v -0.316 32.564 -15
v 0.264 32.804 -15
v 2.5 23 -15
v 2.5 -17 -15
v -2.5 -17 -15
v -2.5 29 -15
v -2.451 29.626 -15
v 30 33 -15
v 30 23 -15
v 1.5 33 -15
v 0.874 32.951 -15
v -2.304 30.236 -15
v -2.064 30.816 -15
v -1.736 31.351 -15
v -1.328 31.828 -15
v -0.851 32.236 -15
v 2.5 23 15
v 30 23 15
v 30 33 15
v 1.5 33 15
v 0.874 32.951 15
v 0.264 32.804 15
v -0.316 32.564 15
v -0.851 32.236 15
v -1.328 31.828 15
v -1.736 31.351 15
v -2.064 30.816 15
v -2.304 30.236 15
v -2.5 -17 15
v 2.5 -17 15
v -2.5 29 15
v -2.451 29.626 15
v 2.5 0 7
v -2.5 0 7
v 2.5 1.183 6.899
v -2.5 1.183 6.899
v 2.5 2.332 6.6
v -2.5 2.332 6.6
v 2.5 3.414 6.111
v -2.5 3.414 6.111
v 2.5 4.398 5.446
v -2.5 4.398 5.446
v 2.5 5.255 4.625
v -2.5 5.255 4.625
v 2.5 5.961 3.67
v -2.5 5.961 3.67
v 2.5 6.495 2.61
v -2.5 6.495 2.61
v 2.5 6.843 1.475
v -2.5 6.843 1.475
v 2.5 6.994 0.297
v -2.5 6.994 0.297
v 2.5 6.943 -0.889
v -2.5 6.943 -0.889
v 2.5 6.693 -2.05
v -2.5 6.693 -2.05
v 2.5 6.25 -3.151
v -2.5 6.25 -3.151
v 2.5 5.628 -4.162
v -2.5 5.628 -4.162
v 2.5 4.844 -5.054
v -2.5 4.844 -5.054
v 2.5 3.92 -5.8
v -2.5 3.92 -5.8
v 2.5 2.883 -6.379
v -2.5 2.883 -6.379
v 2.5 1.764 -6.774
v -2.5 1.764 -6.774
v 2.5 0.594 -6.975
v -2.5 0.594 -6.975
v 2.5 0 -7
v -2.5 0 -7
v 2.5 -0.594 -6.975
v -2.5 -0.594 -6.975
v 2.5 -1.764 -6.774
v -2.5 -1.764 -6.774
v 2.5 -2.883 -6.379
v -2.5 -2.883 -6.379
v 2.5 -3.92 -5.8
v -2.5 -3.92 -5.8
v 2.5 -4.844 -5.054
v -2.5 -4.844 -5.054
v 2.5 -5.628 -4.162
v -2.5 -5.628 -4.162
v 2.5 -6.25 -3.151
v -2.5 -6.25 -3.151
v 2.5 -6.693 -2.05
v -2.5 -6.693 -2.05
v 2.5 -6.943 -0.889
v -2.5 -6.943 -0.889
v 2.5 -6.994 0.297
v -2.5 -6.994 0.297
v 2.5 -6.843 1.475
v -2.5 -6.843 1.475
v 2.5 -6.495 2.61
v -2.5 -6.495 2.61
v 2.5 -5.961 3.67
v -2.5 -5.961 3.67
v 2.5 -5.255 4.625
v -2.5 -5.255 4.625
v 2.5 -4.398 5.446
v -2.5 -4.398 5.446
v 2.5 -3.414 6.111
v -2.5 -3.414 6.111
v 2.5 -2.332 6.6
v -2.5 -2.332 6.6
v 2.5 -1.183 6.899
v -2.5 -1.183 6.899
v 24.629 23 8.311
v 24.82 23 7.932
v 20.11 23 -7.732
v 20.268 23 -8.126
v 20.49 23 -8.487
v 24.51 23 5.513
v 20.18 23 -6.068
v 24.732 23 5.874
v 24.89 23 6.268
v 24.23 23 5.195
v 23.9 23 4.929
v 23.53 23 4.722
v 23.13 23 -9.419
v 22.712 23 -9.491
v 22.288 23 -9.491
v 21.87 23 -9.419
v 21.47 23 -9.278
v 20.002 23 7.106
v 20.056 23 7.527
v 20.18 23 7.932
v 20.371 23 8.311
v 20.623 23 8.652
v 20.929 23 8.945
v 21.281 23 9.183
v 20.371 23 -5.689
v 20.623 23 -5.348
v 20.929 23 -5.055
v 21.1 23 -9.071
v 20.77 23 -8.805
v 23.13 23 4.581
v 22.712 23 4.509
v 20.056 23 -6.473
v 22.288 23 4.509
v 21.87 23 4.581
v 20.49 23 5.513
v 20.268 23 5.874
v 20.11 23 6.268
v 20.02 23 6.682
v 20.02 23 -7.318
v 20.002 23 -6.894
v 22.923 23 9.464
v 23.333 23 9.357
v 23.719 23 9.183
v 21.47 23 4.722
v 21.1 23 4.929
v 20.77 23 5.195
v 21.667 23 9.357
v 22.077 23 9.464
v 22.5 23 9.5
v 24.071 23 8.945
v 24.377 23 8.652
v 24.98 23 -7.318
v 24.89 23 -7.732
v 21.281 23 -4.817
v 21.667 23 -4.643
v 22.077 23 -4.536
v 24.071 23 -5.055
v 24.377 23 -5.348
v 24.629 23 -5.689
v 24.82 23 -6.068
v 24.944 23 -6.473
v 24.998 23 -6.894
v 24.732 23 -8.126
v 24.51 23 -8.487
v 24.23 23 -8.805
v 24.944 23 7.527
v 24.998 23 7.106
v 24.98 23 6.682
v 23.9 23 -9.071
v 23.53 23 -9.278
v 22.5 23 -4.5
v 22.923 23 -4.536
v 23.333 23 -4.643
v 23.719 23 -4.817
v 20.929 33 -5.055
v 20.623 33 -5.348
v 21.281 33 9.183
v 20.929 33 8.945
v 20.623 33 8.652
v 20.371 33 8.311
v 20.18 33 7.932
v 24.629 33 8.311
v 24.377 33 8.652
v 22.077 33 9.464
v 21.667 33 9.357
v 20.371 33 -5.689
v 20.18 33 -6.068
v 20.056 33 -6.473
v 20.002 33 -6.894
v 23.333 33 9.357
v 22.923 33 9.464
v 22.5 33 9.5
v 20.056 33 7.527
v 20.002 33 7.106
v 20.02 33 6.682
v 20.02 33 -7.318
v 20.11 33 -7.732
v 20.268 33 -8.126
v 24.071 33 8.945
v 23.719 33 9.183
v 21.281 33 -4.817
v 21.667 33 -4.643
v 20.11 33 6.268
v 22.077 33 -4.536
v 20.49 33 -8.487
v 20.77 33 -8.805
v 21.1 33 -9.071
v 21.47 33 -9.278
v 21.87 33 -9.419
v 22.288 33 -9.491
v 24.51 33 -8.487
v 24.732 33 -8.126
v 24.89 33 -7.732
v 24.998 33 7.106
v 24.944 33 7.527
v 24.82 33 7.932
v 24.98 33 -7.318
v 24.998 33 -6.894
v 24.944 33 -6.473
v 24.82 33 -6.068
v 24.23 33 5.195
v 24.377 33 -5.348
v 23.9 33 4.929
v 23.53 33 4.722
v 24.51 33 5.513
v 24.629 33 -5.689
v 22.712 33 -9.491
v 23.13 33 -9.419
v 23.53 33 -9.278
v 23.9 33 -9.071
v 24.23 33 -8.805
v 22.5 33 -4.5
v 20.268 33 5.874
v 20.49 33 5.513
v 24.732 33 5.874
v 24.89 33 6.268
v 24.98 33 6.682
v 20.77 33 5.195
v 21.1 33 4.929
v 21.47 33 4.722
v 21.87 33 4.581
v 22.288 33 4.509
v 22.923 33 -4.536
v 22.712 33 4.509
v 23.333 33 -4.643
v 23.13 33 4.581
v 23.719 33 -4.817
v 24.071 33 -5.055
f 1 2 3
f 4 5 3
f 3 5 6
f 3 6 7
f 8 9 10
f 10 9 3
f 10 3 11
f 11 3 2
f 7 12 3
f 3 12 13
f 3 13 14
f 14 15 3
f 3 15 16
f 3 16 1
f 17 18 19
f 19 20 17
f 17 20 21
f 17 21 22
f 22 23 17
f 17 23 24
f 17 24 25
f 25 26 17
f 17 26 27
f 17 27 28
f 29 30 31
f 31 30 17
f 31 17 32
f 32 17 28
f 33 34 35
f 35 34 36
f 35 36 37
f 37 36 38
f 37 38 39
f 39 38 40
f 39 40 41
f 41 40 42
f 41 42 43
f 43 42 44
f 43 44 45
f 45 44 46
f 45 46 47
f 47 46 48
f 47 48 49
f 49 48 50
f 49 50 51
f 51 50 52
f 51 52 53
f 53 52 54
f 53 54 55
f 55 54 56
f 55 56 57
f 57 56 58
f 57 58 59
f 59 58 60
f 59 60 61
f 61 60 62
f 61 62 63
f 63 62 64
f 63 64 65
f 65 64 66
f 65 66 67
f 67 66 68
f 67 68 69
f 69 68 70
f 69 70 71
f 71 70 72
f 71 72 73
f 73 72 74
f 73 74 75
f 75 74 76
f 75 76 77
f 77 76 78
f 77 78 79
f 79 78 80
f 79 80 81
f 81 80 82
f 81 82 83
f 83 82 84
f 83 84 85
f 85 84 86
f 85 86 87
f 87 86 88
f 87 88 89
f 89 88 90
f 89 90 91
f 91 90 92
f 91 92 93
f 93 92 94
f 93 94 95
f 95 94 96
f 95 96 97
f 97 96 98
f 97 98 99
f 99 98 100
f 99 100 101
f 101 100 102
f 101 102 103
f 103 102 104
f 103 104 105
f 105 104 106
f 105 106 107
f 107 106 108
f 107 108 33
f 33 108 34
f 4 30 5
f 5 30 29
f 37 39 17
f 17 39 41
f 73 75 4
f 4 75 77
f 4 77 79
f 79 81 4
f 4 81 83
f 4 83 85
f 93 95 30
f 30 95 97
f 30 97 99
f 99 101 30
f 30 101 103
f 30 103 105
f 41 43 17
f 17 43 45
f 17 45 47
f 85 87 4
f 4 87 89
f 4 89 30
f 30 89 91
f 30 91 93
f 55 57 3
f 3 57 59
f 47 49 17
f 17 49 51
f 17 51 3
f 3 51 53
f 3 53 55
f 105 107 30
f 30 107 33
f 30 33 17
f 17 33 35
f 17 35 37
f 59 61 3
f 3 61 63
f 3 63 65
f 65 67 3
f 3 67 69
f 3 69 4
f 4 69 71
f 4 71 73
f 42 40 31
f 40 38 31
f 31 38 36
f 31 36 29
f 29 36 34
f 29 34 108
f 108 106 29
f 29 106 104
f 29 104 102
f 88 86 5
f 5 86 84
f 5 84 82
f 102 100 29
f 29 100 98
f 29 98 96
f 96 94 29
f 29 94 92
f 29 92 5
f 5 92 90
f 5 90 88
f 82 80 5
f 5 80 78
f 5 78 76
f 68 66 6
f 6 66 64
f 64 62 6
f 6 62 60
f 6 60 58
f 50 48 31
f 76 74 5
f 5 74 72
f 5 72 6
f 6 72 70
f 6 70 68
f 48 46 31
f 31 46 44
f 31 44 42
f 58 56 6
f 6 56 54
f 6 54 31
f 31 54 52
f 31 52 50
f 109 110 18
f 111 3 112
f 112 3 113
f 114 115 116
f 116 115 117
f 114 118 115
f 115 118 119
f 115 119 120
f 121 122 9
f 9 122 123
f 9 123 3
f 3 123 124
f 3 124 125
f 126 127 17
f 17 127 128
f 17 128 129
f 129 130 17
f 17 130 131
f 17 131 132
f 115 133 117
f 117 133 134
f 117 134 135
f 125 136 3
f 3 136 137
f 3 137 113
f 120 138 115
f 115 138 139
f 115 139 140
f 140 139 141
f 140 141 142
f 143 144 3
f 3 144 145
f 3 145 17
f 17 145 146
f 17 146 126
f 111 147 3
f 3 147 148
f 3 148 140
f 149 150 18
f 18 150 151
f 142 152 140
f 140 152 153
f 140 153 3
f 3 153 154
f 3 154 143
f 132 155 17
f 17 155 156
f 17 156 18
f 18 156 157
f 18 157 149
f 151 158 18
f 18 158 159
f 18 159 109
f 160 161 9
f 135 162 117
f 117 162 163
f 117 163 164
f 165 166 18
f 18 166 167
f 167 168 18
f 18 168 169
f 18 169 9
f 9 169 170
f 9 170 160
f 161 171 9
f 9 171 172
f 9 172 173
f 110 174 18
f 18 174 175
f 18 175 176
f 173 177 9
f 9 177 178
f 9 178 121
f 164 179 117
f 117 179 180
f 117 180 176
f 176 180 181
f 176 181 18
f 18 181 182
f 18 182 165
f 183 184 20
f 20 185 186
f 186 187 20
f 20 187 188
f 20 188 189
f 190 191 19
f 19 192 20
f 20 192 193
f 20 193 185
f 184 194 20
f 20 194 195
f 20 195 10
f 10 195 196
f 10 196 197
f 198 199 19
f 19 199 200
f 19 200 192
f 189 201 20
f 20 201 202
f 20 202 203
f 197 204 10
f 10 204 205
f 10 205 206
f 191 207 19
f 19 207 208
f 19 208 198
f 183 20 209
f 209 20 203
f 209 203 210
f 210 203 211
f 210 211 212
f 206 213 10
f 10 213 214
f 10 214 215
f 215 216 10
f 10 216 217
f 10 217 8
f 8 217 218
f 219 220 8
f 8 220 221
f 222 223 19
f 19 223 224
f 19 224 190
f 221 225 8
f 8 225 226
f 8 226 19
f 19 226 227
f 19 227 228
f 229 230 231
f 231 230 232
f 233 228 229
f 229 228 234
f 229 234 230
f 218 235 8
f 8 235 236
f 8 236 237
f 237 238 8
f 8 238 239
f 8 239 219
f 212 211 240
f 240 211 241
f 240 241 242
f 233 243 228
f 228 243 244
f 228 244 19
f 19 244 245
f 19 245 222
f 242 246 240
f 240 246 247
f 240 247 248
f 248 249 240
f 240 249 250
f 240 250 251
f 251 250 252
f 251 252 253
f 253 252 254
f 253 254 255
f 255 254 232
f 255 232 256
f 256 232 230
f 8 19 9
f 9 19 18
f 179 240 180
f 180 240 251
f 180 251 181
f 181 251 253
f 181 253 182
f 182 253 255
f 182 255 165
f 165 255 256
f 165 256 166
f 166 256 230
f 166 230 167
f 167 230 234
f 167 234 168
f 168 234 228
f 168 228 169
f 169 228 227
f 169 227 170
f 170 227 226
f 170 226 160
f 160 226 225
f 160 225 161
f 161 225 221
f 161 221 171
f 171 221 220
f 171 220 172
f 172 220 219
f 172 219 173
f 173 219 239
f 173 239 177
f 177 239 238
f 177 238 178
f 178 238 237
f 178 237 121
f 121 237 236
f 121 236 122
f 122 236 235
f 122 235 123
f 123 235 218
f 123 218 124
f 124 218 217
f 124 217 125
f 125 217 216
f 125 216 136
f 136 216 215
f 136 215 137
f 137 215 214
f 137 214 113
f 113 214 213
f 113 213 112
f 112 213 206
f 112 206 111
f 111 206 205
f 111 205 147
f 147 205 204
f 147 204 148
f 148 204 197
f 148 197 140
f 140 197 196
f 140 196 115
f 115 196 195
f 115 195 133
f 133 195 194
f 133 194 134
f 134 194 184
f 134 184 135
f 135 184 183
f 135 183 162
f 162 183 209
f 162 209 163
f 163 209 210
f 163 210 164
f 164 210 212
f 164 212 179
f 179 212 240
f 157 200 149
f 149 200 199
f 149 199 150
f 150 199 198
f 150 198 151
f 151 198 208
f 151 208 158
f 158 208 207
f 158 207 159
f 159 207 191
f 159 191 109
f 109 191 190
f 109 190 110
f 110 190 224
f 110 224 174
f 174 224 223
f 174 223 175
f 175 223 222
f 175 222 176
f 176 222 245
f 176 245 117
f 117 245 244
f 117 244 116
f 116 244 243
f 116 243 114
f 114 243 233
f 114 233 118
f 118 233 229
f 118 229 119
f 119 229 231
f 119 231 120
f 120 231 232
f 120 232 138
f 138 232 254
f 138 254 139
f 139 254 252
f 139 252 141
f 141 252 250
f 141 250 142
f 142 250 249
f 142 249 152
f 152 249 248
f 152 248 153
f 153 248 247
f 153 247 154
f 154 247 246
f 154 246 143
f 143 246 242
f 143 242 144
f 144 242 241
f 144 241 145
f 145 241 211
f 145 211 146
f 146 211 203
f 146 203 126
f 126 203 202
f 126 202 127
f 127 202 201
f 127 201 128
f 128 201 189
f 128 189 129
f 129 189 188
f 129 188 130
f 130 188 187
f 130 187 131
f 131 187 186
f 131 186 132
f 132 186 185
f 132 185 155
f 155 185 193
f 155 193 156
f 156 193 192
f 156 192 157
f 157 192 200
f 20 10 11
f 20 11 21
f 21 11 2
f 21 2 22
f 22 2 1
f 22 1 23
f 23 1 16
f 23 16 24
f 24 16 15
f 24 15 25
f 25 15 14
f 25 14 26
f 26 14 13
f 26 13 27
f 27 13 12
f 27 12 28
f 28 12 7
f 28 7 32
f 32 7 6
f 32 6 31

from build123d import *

# Parameters (mm, degrees)
SKETCH1_W                = 30
SKETCH1_H                = 40
SKETCH1_R                = 7
BOSS_EXTRUDE2_DEPTH      = 2.5
BOSS_EXTRUDE3_DEPTH      = 30
BOSS_EXTRUDE3_DEPTH_BACK = 2.5
SKETCH1_7_W              = 30
SKETCH1_7_H              = 10
SKETCH2_R                = 2.5
CUT_EXTRUDE1_DEPTH       = 13
FILLET1_R                = 4


with BuildPart() as part:
    # Sketch1 → Boss-Extrude2 (new, symmetric)
    with BuildSketch(Plane(origin=(0, 0, 0), x_dir=(0, 0, -1), z_dir=(1, 0, 0))):
        with Locations((0, 3)):
            Rectangle(SKETCH1_W, SKETCH1_H)
        Circle(SKETCH1_R, mode=Mode.SUBTRACT)
    extrude(amount=BOSS_EXTRUDE2_DEPTH, both=True)

    # Sketch1<7> → Boss-Extrude3 (add, two sides: drawn at the far end of the back side and taken through both)
    with BuildSketch(Plane(origin=(0, 0, 0), x_dir=(0, 0, -1), z_dir=(1, 0, 0)).offset(-BOSS_EXTRUDE3_DEPTH_BACK)):
        with Locations((0, 28)):
            Rectangle(SKETCH1_7_W, SKETCH1_7_H)
    extrude(amount=BOSS_EXTRUDE3_DEPTH + BOSS_EXTRUDE3_DEPTH_BACK)

    # Sketch2 → Cut-Extrude1 (cut)
    with BuildSketch(Plane(origin=(0, 33, 0), x_dir=(1, 0, 0), z_dir=(0, 1, 0))):
        with Locations((22.5, -7)):
            Circle(SKETCH2_R)
        with Locations((22.5, 7)):
            Circle(SKETCH2_R)
    extrude(amount=-CUT_EXTRUDE1_DEPTH, mode=Mode.SUBTRACT)

    # Fillet1
    fillet1_edges = [part.edges().sort_by_distance(p)[0] for p in [
        (-2.5, 33, 0),
    ]]
    fillet(fillet1_edges, radius=FILLET1_R)


solid = part.part
